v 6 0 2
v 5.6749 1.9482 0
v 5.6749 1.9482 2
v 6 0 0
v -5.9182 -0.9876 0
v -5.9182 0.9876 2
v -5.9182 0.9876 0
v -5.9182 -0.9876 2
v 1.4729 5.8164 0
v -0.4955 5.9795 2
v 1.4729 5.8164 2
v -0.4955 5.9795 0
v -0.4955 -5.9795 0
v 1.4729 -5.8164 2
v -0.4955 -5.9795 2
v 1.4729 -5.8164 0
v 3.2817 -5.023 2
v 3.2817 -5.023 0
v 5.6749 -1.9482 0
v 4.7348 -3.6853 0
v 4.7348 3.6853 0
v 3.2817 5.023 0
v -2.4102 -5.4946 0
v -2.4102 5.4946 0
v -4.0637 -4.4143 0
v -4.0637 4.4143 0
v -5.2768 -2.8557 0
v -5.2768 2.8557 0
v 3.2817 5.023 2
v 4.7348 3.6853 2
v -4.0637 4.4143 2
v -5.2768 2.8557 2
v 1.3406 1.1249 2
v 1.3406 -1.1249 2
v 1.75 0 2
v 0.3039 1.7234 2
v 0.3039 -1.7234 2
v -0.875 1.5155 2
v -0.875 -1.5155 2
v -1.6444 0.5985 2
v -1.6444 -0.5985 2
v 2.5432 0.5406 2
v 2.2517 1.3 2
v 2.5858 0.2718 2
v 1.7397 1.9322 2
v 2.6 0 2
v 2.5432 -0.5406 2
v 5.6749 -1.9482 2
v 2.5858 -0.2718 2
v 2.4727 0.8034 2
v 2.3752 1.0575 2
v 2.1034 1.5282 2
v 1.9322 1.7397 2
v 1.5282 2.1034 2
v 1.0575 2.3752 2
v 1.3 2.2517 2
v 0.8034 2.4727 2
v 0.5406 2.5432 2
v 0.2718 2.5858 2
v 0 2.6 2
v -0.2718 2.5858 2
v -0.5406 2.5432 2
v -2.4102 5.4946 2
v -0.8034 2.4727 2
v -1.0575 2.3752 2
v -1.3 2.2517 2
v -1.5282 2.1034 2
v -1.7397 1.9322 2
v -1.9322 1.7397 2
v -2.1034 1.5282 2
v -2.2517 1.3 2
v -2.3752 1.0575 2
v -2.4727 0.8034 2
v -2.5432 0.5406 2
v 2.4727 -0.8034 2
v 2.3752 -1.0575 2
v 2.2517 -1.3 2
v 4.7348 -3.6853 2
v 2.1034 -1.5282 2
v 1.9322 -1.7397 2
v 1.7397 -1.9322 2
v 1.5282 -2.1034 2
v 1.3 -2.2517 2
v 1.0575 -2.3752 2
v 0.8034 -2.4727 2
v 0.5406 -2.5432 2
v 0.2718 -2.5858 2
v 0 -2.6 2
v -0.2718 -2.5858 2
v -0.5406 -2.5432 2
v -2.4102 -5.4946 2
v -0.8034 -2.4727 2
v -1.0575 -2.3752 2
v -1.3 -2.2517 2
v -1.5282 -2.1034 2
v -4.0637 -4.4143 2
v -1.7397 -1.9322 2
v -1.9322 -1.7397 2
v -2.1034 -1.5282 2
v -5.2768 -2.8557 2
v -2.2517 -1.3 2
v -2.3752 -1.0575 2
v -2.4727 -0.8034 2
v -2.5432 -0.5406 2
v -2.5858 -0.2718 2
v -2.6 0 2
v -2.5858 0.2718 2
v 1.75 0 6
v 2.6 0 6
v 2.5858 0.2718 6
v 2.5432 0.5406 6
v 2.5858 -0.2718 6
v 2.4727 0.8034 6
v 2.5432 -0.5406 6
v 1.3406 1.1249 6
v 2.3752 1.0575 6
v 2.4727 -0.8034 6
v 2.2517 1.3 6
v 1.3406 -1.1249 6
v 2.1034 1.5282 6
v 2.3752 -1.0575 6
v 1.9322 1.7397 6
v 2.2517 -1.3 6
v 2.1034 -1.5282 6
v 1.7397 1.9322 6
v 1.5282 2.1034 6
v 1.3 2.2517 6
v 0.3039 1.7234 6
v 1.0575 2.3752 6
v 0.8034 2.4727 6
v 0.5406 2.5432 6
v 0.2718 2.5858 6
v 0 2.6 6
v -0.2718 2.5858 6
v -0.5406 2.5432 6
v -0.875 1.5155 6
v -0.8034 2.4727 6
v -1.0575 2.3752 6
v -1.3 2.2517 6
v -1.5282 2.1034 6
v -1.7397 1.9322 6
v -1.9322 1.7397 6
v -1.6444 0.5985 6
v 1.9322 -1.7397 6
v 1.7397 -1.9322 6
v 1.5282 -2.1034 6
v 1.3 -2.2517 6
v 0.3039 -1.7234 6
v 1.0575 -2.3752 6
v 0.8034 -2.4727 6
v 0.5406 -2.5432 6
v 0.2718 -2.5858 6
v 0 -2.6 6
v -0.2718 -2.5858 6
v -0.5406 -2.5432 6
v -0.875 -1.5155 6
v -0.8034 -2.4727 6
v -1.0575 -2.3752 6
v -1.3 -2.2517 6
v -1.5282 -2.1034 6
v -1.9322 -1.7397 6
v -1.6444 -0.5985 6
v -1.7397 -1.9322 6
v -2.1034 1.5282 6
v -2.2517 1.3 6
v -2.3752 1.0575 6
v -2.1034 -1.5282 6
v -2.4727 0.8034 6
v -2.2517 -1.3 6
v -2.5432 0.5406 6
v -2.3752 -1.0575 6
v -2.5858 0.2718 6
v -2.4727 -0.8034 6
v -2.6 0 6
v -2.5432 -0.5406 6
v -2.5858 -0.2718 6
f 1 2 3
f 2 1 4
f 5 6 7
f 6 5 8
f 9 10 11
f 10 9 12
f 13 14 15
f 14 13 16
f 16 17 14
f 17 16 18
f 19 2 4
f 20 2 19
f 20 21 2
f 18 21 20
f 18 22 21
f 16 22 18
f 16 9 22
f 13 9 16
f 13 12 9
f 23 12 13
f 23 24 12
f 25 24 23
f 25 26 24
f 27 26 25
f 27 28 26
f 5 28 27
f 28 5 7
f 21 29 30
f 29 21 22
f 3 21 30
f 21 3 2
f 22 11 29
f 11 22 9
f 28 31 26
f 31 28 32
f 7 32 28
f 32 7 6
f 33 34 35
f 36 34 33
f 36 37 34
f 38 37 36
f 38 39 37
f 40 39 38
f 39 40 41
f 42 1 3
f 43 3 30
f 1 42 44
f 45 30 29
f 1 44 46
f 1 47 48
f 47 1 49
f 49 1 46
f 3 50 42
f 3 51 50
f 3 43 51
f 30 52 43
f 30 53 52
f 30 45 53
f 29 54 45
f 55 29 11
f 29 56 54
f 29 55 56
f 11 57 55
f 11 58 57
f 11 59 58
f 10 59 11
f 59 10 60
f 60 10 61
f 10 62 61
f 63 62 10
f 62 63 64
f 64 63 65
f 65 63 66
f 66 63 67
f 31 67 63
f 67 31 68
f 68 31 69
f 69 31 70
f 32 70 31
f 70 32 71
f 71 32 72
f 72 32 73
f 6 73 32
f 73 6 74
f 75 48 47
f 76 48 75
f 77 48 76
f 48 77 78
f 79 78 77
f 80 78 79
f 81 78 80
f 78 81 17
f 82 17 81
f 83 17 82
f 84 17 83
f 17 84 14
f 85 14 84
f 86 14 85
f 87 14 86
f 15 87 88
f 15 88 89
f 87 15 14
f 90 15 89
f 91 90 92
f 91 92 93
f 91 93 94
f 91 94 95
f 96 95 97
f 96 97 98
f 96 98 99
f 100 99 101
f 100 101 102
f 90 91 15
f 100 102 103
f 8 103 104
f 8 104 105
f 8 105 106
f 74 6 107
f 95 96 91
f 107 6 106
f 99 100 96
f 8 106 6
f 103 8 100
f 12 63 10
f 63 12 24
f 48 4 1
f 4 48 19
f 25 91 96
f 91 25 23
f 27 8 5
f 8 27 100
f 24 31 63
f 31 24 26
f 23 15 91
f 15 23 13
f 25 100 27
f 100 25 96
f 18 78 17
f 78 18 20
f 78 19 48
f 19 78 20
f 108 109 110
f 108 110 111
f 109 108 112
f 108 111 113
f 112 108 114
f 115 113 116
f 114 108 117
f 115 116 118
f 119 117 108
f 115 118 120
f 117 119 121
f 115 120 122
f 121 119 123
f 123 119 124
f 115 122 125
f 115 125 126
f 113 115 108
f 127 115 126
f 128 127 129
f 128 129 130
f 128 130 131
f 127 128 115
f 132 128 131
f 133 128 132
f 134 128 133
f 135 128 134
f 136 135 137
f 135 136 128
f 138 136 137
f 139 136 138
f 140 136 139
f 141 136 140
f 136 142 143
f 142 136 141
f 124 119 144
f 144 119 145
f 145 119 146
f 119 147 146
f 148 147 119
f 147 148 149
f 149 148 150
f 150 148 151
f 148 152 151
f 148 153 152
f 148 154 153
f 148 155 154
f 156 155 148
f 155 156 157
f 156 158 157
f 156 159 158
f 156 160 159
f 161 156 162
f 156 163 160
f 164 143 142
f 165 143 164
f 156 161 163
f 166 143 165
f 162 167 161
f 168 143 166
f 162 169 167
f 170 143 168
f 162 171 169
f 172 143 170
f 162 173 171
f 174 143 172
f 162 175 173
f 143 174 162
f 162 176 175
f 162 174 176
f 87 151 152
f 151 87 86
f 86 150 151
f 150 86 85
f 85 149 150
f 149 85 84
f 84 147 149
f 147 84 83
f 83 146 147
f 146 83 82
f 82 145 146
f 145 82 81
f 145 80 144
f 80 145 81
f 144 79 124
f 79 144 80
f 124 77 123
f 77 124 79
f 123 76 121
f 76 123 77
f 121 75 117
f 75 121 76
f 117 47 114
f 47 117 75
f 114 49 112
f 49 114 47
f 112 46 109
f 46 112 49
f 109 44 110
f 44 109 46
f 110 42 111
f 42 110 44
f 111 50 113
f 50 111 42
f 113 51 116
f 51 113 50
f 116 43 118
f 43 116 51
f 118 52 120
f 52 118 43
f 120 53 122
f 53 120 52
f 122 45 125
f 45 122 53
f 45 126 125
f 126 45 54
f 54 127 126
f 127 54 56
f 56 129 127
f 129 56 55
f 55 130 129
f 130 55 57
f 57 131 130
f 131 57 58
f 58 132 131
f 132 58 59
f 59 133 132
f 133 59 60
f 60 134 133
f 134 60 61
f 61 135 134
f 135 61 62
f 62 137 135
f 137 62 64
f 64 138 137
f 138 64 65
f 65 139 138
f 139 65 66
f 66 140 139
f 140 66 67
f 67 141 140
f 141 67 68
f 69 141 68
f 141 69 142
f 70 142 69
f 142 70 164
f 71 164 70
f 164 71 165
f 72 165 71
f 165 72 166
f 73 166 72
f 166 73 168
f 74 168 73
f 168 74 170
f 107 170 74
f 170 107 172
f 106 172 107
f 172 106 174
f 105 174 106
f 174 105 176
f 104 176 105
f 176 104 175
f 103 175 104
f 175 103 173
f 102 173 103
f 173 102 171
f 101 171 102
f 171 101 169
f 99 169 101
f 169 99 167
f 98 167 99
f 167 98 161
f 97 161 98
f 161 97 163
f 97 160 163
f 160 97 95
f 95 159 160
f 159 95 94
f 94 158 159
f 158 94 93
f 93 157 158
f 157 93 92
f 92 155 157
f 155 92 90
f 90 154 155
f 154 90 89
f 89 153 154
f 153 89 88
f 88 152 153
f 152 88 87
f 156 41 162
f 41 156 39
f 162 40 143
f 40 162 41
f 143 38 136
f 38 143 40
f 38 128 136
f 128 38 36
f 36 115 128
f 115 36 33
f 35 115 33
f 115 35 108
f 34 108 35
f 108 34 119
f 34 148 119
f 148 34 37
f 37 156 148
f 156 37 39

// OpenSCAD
$cap_height = 2;

cylinder(r=6, h=$cap_height);

translate([0, 0, $cap_height])
linear_extrude(4)
difference() {
    circle(r=2.6, $fn=60);
    circle(r=3.5/2, $fn=9);
}
